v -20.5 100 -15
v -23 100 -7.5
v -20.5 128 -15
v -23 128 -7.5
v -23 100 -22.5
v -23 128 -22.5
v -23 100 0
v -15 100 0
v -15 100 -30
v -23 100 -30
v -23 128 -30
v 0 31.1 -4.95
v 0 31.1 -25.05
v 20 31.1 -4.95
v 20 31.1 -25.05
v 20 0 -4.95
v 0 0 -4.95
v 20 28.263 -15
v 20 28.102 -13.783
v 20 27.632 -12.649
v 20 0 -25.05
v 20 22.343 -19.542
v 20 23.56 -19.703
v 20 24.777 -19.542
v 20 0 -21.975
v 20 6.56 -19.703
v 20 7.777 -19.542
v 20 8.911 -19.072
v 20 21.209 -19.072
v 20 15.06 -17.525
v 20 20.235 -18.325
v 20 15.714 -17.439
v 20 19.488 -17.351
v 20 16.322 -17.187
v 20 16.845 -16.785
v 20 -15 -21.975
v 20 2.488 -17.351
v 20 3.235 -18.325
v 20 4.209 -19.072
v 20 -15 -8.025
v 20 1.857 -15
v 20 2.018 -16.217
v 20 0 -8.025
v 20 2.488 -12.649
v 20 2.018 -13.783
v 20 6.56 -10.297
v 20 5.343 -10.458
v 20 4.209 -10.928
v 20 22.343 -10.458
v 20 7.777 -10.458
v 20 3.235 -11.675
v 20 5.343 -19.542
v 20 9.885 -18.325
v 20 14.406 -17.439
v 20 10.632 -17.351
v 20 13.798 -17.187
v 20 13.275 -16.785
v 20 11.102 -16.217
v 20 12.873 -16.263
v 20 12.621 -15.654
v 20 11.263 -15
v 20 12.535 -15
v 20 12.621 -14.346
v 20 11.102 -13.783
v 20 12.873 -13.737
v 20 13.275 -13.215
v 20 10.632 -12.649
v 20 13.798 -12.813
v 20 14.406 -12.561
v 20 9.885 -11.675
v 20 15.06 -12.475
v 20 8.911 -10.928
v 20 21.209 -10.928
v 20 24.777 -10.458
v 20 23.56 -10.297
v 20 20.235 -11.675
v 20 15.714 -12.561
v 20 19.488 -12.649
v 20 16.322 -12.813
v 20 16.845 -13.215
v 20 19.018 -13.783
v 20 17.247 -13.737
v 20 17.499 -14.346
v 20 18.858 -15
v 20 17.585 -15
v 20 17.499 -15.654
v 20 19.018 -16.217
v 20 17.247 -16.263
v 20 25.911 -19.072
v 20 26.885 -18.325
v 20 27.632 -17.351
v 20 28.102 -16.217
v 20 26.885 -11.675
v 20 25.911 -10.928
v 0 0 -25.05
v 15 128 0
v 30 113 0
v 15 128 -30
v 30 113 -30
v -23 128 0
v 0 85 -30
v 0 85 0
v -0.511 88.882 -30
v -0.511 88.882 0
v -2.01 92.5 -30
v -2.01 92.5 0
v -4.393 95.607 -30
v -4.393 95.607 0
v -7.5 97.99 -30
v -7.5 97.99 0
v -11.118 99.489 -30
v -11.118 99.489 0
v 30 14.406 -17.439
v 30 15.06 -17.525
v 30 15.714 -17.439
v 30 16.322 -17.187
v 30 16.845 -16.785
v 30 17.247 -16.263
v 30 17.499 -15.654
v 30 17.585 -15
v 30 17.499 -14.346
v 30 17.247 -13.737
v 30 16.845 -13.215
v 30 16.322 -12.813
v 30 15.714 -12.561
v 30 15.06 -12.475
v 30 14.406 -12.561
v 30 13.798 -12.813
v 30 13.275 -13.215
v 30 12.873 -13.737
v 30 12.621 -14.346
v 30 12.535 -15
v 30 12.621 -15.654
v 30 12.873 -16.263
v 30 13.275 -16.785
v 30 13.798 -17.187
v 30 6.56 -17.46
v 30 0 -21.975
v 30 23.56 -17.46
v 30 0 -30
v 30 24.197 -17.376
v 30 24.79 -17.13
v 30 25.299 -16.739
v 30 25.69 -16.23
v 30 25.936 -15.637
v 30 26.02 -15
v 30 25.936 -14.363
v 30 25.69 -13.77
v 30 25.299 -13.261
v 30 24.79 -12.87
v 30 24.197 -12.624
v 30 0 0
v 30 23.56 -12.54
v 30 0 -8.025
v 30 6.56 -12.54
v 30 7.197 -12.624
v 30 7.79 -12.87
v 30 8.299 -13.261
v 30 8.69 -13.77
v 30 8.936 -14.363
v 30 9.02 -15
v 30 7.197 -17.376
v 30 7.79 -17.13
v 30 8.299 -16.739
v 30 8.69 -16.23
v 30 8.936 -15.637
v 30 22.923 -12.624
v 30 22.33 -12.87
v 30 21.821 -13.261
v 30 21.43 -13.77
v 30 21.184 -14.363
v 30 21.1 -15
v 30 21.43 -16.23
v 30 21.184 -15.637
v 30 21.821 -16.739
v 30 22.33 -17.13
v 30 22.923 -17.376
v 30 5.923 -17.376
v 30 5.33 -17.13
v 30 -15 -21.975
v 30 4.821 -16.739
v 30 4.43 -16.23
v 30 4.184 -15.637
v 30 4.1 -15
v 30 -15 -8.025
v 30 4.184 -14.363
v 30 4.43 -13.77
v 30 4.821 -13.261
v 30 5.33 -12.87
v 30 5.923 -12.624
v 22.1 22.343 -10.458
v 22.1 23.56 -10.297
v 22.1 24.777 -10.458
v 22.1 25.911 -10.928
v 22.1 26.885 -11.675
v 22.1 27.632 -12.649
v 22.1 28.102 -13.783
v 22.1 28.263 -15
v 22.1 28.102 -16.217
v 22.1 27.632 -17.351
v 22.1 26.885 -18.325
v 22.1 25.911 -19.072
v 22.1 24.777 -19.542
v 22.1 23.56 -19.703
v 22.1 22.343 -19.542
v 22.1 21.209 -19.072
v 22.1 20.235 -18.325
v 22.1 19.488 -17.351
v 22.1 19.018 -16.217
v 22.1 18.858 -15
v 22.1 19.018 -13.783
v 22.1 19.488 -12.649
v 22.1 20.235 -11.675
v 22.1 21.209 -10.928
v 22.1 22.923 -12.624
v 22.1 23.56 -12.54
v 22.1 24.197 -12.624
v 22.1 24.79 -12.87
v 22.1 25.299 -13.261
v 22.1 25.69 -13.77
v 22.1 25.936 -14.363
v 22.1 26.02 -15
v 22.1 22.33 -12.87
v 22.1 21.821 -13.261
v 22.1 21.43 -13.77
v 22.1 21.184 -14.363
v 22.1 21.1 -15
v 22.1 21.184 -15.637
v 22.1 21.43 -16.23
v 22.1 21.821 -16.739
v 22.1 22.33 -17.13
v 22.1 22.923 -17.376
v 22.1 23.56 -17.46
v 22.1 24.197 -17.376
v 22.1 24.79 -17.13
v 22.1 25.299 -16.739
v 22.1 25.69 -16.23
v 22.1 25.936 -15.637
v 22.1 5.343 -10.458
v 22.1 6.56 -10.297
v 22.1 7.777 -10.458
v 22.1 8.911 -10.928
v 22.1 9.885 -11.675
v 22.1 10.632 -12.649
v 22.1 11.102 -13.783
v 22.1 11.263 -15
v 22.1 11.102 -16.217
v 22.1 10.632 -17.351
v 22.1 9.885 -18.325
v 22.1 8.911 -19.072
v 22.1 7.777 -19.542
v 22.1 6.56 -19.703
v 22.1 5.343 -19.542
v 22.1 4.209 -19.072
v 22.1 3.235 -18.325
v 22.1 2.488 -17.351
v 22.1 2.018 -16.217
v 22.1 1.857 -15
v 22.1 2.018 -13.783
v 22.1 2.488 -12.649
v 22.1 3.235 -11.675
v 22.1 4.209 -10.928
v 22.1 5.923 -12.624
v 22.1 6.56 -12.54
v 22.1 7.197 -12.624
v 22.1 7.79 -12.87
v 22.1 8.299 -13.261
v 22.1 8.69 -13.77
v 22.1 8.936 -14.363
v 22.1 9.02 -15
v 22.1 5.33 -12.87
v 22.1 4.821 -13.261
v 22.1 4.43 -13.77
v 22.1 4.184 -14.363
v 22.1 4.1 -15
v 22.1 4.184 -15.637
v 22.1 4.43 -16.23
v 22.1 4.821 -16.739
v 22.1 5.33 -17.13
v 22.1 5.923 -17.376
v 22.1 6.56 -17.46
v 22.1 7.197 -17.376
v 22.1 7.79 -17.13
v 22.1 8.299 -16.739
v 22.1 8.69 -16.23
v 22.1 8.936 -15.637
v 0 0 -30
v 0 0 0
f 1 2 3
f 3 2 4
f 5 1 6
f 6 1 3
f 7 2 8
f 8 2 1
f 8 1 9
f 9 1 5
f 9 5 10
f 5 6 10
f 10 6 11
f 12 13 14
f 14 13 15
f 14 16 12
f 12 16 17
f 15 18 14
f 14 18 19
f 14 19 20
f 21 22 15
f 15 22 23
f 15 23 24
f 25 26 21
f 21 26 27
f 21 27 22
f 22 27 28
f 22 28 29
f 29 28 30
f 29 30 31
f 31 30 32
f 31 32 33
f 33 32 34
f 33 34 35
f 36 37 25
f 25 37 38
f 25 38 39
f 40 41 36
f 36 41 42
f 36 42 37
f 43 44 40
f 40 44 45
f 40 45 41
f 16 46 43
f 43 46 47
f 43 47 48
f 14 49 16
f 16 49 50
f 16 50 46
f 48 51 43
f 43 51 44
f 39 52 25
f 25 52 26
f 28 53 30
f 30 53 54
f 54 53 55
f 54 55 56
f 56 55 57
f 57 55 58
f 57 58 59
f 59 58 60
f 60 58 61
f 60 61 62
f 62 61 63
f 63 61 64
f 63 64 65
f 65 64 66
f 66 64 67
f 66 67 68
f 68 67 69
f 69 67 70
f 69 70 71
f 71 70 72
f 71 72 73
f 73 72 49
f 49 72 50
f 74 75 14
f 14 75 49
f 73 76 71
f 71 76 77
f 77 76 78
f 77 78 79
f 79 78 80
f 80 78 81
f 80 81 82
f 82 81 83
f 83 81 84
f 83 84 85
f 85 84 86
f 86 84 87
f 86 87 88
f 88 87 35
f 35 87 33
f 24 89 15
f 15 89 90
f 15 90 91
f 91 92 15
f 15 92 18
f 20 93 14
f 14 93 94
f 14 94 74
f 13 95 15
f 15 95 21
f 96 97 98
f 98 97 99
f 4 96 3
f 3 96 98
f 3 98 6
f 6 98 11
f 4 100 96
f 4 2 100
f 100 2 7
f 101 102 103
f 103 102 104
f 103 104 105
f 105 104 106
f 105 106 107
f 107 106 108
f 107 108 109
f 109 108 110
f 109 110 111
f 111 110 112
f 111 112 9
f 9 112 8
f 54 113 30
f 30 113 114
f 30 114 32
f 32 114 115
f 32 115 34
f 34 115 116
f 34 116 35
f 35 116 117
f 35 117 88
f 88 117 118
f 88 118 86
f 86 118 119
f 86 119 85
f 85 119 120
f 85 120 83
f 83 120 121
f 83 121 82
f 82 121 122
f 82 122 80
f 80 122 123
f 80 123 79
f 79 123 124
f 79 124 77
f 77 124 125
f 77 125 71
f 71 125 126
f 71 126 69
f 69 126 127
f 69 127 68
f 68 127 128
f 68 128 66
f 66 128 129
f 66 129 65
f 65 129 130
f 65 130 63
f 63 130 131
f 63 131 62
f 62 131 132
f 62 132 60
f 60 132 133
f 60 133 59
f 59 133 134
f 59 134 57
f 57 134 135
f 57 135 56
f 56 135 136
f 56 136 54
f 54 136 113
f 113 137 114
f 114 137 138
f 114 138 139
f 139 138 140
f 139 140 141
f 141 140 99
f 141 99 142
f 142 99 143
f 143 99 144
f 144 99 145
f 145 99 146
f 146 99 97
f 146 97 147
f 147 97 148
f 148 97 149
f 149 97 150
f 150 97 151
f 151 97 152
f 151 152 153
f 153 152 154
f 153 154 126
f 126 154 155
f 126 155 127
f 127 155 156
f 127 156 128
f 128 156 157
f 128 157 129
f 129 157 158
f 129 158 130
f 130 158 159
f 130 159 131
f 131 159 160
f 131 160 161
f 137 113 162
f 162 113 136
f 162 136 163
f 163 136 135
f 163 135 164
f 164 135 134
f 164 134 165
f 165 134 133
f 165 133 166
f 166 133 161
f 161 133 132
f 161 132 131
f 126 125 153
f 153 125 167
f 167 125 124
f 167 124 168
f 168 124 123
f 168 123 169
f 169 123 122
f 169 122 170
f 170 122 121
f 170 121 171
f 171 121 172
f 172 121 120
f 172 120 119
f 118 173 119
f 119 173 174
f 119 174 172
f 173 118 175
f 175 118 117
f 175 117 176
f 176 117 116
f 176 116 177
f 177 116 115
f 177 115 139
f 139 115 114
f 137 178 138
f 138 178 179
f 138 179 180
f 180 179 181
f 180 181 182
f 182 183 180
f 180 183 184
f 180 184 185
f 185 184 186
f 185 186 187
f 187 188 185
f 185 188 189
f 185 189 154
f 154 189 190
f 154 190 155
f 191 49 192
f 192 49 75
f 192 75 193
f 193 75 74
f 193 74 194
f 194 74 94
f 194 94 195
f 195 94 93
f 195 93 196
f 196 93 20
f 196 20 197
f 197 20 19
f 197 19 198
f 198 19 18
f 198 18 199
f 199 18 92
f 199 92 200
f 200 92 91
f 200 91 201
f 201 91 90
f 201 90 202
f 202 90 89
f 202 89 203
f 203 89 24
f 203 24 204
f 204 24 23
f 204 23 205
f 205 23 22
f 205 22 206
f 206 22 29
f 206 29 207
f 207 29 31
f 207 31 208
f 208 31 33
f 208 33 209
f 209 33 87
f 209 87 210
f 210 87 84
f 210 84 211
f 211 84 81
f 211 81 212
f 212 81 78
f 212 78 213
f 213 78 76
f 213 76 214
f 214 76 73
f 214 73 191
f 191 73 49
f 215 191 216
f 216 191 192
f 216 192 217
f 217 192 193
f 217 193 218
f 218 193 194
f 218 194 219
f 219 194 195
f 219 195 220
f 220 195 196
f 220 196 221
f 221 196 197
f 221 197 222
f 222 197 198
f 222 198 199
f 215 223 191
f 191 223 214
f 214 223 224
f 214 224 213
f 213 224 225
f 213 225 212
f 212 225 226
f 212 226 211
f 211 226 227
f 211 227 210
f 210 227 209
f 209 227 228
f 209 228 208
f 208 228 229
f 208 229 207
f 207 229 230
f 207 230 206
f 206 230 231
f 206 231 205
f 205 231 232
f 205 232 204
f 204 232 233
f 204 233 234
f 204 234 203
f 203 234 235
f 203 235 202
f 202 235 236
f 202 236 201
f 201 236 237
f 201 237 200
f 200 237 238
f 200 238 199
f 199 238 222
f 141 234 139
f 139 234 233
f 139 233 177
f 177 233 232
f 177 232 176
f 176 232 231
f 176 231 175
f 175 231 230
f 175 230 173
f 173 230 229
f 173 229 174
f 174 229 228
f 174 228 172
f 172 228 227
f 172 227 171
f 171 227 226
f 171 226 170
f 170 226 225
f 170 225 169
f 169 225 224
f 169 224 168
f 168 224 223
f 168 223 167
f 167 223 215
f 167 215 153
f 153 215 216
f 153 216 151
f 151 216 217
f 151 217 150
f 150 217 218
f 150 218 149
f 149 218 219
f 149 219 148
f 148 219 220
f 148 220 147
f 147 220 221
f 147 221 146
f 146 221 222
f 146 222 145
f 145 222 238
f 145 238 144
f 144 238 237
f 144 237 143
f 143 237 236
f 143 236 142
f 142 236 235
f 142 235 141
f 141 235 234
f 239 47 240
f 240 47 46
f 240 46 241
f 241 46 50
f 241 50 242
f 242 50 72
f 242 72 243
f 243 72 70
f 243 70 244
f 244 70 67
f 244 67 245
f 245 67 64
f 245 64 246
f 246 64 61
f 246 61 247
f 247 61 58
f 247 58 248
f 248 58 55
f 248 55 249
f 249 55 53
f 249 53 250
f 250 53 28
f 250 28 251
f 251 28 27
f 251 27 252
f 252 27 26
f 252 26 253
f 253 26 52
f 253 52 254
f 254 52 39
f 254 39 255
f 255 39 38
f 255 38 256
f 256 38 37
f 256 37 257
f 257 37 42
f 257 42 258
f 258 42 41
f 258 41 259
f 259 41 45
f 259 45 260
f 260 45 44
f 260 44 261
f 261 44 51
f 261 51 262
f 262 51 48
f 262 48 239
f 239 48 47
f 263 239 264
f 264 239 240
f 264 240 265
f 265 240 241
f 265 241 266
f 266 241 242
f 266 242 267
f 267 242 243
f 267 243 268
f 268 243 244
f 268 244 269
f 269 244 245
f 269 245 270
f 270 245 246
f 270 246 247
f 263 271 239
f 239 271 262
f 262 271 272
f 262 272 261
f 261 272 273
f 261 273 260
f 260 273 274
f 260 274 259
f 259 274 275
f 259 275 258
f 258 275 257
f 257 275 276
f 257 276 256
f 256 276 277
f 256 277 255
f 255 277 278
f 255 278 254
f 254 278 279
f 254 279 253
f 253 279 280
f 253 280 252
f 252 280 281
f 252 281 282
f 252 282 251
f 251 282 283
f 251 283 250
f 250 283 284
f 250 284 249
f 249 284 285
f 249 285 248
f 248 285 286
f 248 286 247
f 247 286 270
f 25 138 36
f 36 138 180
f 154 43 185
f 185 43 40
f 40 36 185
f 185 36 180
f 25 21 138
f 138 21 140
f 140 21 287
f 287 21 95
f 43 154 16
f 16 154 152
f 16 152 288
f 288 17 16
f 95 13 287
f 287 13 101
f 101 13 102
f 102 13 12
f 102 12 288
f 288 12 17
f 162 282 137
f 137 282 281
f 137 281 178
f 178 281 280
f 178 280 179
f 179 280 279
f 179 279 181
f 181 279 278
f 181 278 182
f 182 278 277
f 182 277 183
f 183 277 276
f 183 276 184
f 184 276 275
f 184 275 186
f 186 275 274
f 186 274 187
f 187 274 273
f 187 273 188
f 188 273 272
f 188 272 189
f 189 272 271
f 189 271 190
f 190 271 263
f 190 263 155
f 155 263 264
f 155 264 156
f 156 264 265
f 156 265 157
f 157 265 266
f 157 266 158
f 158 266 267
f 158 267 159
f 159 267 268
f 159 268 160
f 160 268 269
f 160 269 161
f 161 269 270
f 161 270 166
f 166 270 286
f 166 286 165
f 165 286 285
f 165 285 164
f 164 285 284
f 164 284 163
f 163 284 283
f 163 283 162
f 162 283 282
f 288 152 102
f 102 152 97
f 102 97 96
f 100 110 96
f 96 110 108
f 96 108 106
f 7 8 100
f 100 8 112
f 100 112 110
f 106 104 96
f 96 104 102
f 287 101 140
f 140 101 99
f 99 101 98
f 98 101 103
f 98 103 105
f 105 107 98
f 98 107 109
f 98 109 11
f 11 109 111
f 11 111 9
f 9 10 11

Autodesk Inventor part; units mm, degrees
ref_plane "YZ Plane" through (0, 0, 0) normal (1, 0, 0) x (0, 1, 0)
ref_plane "XZ Plane" through (0, 0, 0) normal (0, 1, 0) x (-1, 0, 0)
ref_plane "XY Plane" through (0, 0, 0) normal (0, 0, 1) x (1, 0, 0)
sketch "Sketch1" plane through (0, 0, 0) normal (0, 0, 1) x (1, 0, 0)
  line L0 (0, 0) -> (25, 0)
  line L1 (25, 0) -> (25, 40)
  line L2 (25, 40) -> (0, 40)
  line L3 (0, 40) -> (0, 0)
  dimension "d1" = 25
  dimension "d2" = 40
  dimension "d3" = 25
extrude "Extrusion1" add sketch "Sketch1" against normal blind 30
sketch "Sketch2" plane through (25, 0, 0) normal (1, 0, 0) x (0, 0, -1)
  line L0 (0, 0) -> (30, 0) projected
  circle A0 centre (15, 6.56) radius 2.46
extrude "Extrusion2" cut sketch "Sketch2" against normal blind 30
sketch "Sketch3" plane through (0, 0, 0) normal (-1, 0, 0) x (0, 0, 1)
  line L0 (0, 0) -> (-30, 0) projected
  line L1 (-25.05, 0) -> (-4.95, 0)
  line L2 (-4.95, 0) -> (-4.95, 33.12)
  line L3 (-4.95, 33.12) -> (-25.05, 33.12)
  line L4 (-25.05, 33.12) -> (-25.05, 0)
  dimension "d11" = 20.1
extrude "Extrusion3" cut sketch "Sketch3" against normal blind 20
sketch "Sketch4" plane through (0, 0, 0) normal (0, -1, 0) x (1, 0, 0)
  line L0 (20, -4.95) -> (20, -25.05) projected
  line L1 (20, -15) -> (25, -15)
  line L2 (25, 0) -> (25, -30) projected
  line L3 (20, -8.025) -> (25, -8.025)
  line L4 (25, -8.025) -> (25, -21.975)
  line L5 (25, -21.975) -> (20, -21.975)
  line L6 (20, -21.975) -> (20, -8.025)
  line L7 (20, -8.025) -> (25, -21.975) construction
  line L8 (25, -8.025) -> (20, -21.975) construction
  line L9 (25, -12.54) -> (25, -17.46) projected
  point P0 (0, 0)
  point P1 (22.5, -15)
  dimension "d14" = 13.95
extrude "Extrusion4" add sketch "Sketch4" along normal blind 15
sketch "Sketch5" plane through (20, 0, 0) normal (-1, 0, 0) x (0, 0, 1)
  circle A0 centre (-15, 6.56) radius 2.46 projected
  circle A1 centre (-15, 6.56) radius 4.7025
  circle A2 centre (-15, 6.56) radius 2.46 projected
  circle A3 centre (-15, 6.56) radius 2.46
  point P0 (0, 0)
  dimension "d17" = 9.405
extrude "Extrusion5" cut sketch "Sketch5" against normal blind 2.1
sketch "Sketch6" plane through (25, 0, 0) normal (1, 0, 0) x (0, 0, -1)
  circle A0 centre (15, 6.56) radius 4.7025 projected
  line L0 (15, 6.56) -> (15, 23.56)
  circle A1 centre (15, 23.56) radius 2.46
  point P0 (0, 0)
  dimension "d20" = 17
  dimension "d21" = 4.92
extrude "Extrusion6" cut sketch "Sketch6" against normal blind 10 contours A1
sketch "Sketch7" plane through (20, 0, 0) normal (-1, 0, 0) x (0, 0, 1)
  circle A0 centre (-15, 23.56) radius 2.46 projected
  circle A1 centre (-15, 23.56) radius 4.7025
  point P0 (0, 0)
  dimension "d24" = 9.405
extrude "Extrusion7" cut sketch "Sketch7" against normal blind 2.1
sketch "Sketch9" plane through (25, 0, 0) normal (1, 0, 0) x (0, 0, -1)
  circle A0 centre (15, 6.56) radius 2.46 projected
  circle A1 centre (15, 6.56) radius 2.46
  circle A2 centre (15, 23.56) radius 2.46 projected
  circle A3 centre (15, 23.56) radius 2.46
  line L0 (30, 40) -> (30, 0) projected
  line L1 (30, 0) -> (30, 40)
  line L2 (30, 40) -> (0, 40)
  line L3 (0, 40) -> (0, 0)
  line L4 (0, 0) -> (8.025, 0) projected
  line L5 (21.975, 0) -> (21.975, -15)
  line L6 (21.975, -15) -> (8.025, -15)
  line L7 (8.025, -15) -> (8.025, 0)
  line L8 (0, 0) -> (8.025, 0)
  line L9 (21.975, 0) -> (30, 0)
extrude "Extrusion8" add sketch "Sketch9" along normal blind 5
sketch "Sketch10" plane through (0, 40, 0) normal (0, 1, 0) x (1, 0, 0)
  line L0 (0, 30) -> (30, 30) projected
  line L1 (30, 0) -> (0, 0) projected
  line L2 (0, 30) -> (30, 30)
  line L3 (30, 30) -> (30, 0)
  line L4 (30, 0) -> (0, 0)
  line L5 (0, 0) -> (0, 30)
extrude "Extrusion9" add sketch "Sketch10" along normal blind 30
sketch "Sketch12" plane through (30, 0, 0) normal (1, 0, 0) x (0, 0, -1)
  circle A0 centre (15, 6.56) radius 2.46 projected
  line L0 (15, 6.56) -> (15, 15.06)
  circle A1 centre (15, 15.06) radius 2.525
  point P0 (0, 0)
  dimension "d31" = 8.5
  dimension "d33" = 5.05
extrude "Extrusion10" cut sketch "Sketch12" against normal blind 30 contours A1
sketch "Sketch14" plane through (0, 0, 0) normal (0, 0, 1) x (1, 0, 0)
  line L0 (30, 70) -> (0, 70) projected
  line L1 (0, 70) -> (0, 85)
  line L2 (-15, 100) -> (-23, 100)
  line L3 (30, 0) -> (30, 70) projected
  line L4 (30, 113) -> (30, 70)
  arc A0 (0, 85) -> (-15, 100) centre (-15, 85) ccw
  line L5 (30, 105) -> (30, 100)
  line L6 (-23, 128) -> (15, 128)
  line L7 (30, 113) -> (15, 128)
  line L8 (-23, 128) -> (-23, 100)
  point P0 (0, 0)
  point P1 (0, 100)
  dimension "d47" = 30
  dimension "d54" = 15
  dimension "d69" = 28
extrude "Extrusion12" add sketch "Sketch14" against normal blind 30
sketch "Sketch15" plane through (0, 0, -25.05) normal (-1, 0, 0) x (0, 0, 1)
  line L0 (0, 33.12) -> (20.1, 33.12) projected
  line L1 (20.1, 33.12) -> (20.1, 0) projected
  line L2 (0, 33.12) -> (20.1, 33.12)
  line L3 (20.1, 33.12) -> (20.1, 31.1)
  line L4 (20.1, 31.1) -> (0, 31.1)
  line L5 (0, 31.1) -> (0, 33.12)
  point P0 (25.05, 0)
  dimension "d57" = 2.02
extrude "Extrusion13" add sketch "Sketch15" against normal blind 20
sketch "Sketch20" plane through (-23, 128, 0) normal (0, 1, 0) x (1, 0, 0)
  line L0 (0, 0) -> (0, 30) projected
  line L1 (0, 15) -> (0, 9)
  line L2 (0, 21) -> (0, 15)
  line L3 (0, 7.5) -> (0, 22.5)
  line L4 (0, 22.5) -> (2.5, 15)
  line L5 (2.5, 15) -> (0, 7.5)
  point P0 (23, 0)
  dimension "d74" = 6
extrude "Extrusion14" cut sketch "Sketch20" against normal through all
properties part number "24mm_x_30mm"
